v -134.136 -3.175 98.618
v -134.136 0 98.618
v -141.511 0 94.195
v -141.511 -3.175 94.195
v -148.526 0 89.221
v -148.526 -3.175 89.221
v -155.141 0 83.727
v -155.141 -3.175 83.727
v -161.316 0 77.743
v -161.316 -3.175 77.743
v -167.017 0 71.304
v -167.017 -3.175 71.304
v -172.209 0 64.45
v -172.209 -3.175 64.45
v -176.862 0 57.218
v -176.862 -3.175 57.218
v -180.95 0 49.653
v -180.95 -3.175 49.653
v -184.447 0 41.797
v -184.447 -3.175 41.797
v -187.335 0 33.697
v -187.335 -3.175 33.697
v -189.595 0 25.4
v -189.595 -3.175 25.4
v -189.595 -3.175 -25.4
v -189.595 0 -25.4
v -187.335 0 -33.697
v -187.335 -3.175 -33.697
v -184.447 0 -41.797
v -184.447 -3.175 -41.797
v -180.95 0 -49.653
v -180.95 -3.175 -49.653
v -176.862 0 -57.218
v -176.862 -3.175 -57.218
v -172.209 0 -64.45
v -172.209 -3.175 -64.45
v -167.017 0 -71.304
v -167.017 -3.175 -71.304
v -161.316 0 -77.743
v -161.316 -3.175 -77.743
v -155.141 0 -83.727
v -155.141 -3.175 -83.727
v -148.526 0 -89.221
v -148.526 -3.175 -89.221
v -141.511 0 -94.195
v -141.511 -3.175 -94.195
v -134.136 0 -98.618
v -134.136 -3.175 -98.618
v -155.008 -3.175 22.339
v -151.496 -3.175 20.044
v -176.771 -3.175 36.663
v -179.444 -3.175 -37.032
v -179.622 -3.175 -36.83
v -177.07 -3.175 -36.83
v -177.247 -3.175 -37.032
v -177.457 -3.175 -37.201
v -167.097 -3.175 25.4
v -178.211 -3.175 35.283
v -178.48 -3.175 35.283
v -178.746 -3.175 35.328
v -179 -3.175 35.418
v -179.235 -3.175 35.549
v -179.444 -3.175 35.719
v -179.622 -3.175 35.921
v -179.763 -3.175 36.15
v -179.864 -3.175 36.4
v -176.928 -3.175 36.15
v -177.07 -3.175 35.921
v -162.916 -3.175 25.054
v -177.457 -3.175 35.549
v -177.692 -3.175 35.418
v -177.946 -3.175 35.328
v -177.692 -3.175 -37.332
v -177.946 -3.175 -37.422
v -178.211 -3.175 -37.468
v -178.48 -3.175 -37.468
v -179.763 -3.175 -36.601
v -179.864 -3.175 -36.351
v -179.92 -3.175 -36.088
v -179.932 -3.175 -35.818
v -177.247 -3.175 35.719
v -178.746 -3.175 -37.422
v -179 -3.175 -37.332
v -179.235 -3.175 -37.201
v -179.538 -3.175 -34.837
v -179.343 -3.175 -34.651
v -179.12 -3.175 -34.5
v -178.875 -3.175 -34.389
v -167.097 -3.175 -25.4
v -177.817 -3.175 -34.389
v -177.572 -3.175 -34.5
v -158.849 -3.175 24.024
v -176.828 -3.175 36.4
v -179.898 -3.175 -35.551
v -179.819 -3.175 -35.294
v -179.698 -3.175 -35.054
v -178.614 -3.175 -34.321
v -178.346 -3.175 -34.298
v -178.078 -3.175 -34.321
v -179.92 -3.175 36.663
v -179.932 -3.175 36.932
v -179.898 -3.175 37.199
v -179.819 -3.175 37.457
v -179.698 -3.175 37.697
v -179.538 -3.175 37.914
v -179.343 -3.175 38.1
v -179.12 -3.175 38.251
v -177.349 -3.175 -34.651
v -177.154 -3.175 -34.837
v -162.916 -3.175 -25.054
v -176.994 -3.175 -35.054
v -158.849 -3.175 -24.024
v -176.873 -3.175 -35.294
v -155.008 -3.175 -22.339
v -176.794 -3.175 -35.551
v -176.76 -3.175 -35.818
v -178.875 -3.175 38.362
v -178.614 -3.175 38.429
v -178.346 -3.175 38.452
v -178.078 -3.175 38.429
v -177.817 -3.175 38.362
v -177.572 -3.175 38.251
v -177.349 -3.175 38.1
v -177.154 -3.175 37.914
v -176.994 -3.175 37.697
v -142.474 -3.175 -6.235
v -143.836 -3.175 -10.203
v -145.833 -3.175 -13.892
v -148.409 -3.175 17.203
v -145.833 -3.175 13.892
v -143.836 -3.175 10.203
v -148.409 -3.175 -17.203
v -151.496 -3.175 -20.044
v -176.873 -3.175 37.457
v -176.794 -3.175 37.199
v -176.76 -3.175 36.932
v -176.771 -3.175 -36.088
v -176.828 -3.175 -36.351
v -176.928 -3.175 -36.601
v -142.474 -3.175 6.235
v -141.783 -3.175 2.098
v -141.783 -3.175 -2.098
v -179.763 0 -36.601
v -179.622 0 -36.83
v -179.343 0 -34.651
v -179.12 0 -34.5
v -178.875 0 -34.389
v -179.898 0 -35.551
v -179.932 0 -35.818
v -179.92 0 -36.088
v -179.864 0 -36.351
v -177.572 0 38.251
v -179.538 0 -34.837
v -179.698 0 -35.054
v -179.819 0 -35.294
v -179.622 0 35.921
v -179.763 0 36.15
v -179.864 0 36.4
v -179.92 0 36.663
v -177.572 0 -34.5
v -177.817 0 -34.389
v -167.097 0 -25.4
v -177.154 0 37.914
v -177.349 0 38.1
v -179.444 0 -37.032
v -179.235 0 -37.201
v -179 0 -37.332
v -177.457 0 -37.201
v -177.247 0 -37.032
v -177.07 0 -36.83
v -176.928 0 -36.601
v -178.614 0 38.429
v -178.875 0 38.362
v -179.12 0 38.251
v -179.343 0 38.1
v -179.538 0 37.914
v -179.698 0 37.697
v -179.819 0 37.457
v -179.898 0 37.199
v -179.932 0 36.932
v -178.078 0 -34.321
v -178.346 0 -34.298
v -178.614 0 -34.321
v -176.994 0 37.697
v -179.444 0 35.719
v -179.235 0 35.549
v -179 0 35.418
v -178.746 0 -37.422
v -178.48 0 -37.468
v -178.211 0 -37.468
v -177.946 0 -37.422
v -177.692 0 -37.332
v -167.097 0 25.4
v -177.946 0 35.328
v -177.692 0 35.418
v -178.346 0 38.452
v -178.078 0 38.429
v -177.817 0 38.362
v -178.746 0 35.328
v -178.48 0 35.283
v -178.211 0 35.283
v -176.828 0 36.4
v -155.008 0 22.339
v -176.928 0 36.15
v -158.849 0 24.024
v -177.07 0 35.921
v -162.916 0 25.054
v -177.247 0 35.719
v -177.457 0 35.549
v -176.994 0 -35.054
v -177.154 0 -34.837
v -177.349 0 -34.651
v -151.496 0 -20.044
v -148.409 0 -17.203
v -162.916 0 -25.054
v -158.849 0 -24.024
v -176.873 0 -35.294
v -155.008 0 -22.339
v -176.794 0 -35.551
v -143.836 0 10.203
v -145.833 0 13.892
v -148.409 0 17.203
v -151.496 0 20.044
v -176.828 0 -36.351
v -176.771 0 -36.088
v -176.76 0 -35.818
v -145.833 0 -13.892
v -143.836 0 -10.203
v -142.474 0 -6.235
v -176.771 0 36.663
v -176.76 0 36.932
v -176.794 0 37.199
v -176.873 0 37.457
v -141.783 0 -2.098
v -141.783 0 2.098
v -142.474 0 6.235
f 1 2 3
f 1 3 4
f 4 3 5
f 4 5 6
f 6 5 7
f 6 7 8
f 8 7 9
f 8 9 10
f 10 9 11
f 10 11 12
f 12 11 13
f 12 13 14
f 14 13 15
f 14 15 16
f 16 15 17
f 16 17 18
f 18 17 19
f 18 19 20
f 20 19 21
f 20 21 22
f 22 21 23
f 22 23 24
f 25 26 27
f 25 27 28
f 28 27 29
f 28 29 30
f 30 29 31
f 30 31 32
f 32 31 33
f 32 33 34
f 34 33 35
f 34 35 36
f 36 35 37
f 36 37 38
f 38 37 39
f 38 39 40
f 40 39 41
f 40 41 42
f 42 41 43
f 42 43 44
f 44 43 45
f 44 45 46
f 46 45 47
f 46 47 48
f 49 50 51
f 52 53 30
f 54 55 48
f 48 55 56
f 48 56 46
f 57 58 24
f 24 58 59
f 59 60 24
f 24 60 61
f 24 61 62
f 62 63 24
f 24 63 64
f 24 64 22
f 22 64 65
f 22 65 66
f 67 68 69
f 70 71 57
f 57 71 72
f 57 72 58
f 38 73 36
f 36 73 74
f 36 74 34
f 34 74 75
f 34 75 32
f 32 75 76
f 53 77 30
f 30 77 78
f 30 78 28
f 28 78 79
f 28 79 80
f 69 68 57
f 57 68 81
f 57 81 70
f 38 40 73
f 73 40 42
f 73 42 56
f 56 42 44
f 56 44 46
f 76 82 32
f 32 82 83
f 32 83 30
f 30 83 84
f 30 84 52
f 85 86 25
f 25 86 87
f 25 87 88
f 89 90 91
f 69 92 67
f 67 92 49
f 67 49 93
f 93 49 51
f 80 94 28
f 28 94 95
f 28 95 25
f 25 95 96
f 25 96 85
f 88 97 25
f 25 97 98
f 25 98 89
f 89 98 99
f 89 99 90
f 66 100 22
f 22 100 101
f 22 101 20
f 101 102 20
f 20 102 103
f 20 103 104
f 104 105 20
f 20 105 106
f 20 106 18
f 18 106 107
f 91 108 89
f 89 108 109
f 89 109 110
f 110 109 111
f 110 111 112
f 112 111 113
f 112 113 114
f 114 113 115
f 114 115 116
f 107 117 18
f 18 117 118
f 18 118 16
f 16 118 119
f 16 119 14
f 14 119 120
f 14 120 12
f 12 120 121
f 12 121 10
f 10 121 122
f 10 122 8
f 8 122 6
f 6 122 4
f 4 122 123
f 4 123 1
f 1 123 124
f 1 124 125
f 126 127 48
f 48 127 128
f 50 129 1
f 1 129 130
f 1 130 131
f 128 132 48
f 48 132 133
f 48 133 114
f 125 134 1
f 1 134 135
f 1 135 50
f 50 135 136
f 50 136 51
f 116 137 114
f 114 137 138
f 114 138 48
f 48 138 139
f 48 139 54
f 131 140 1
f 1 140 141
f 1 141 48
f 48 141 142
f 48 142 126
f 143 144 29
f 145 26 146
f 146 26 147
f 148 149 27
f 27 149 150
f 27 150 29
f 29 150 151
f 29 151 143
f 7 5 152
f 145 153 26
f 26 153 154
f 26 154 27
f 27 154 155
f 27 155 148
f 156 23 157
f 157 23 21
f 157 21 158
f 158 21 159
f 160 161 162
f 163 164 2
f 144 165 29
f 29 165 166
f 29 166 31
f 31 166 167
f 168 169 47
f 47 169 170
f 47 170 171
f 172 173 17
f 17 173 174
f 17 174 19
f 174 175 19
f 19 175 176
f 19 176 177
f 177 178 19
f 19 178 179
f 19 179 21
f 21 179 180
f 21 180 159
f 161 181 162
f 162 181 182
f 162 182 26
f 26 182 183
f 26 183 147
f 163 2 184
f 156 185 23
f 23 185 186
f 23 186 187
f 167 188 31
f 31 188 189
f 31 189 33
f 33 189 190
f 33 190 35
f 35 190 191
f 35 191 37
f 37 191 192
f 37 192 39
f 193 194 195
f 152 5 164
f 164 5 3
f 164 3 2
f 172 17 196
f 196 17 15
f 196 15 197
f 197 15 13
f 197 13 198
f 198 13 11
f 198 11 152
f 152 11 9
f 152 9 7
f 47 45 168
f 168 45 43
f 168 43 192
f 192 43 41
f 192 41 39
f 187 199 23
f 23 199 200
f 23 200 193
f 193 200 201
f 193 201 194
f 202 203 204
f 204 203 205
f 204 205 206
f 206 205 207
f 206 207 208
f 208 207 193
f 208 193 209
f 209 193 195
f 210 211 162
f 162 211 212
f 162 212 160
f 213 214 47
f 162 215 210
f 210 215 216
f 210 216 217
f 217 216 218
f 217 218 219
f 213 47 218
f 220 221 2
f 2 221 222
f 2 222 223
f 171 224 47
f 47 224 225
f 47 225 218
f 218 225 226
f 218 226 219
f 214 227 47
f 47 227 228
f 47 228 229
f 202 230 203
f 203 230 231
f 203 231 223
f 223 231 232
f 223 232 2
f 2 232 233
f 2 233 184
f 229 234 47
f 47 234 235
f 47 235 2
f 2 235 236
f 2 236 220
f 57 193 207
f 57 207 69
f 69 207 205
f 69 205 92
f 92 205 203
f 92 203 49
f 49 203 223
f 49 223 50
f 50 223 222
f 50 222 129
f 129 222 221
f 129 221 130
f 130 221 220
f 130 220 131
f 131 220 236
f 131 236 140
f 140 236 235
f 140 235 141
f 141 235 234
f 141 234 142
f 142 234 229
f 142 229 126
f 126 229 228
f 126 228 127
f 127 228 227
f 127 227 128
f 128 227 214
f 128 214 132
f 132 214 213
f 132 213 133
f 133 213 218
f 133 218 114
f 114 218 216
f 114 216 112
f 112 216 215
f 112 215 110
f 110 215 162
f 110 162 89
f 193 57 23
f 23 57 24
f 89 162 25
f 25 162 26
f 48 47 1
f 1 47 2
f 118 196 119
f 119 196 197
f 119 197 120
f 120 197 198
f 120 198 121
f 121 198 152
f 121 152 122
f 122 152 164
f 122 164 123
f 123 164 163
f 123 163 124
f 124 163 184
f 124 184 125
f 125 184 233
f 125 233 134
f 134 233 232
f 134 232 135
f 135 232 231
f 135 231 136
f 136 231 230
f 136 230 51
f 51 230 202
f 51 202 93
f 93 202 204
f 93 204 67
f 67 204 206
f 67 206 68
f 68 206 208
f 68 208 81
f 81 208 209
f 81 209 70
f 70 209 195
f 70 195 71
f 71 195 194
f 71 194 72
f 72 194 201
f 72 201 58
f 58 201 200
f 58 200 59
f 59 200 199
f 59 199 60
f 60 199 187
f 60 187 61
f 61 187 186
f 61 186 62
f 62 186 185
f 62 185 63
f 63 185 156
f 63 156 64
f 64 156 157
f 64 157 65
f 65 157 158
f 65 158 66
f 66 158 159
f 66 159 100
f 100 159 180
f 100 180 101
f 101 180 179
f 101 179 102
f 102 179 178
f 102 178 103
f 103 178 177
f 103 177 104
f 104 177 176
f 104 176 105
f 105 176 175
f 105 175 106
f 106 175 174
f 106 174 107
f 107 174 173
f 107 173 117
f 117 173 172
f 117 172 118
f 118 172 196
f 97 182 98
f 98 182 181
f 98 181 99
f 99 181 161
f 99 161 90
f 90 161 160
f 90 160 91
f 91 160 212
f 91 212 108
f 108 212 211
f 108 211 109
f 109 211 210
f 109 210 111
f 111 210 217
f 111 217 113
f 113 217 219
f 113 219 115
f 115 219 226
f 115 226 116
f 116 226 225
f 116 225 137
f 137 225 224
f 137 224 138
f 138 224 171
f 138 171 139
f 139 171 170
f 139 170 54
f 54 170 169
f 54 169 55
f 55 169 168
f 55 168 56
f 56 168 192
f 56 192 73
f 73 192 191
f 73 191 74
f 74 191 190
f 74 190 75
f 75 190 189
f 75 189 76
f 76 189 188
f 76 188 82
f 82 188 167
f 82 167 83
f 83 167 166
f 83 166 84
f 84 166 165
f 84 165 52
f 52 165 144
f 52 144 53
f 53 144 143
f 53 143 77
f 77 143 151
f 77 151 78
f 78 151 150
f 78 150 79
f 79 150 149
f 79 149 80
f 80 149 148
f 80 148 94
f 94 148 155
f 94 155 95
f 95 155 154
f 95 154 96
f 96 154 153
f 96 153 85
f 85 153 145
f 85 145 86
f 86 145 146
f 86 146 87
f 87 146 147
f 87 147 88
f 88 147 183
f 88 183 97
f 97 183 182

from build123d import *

# Parameters (mm, degrees)
BOSS_EXTRUDE1_DEPTH = 3.175
SKETCH2_R           = 1.5875
SKETCH2_W           = 80.264
SKETCH2_H           = 12.954
CUT_EXTRUDE1_DEPTH  = 223.985606318
SKETCH7_R           = 1.5875
SKETCH7_W           = 46.99
SKETCH7_H           = 138.43
CUT_EXTRUDE4_DEPTH  = 223.985606318
CUT_EXTRUDE5_DEPTH  = 223.985606318
SKETCH9_W           = 300.072277348
SKETCH9_H           = 334.026066528
CUT_EXTRUDE6_DEPTH  = 221.482742149
SKETCH10_R          = 1.5875
CUT_EXTRUDE7_DEPTH  = 214.733203623


with BuildPart() as part:
    # Sketch1 → Boss-Extrude1 (new body)
    with BuildSketch(Plane(origin=(0, 0, 0), x_dir=(1, 0, 0), z_dir=(0, 1, 0))):
        with BuildLine():
            Line((-80, 112.5), (100, 112.5))
            Line((100, 112.5), (100, -112.5))
            Line((100, -112.5), (-80, -112.5))
            ThreePointArc((-80, -112.5), (-192.5, 0), (-80, 112.5))
        make_face()
    extrude(amount=-BOSS_EXTRUDE1_DEPTH)

    # Sketch2 → Cut-Extrude1 (cut, through all)
    with BuildSketch(Plane(origin=(0, 0, 0), x_dir=(1, 0, 0), z_dir=(0, 1, 0))):
        with Locations(Location((36.144045702, -74.2188, 0), (0, 0, 270))):
            Circle(SKETCH2_R)
        with Locations(Location((36.144045702, -67.8688, 0), (0, 0, 270))):
            Circle(SKETCH2_R)
        with Locations(Location((36.144045702, -61.5188, 0), (0, 0, 270))):
            Circle(SKETCH2_R)
        with Locations(Location((36.144045702, -55.1688, 0), (0, 0, 270))):
            Circle(SKETCH2_R)
        with Locations(Location((36.144045702, -48.8188, 0), (0, 0, 270))):
            Circle(SKETCH2_R)
        with Locations(Location((36.144045702, -42.4688, 0), (0, 0, 270))):
            Circle(SKETCH2_R)
        with Locations(Location((36.144045702, -36.1188, 0), (0, 0, 270))):
            Circle(SKETCH2_R)
        with Locations(Location((67.894045702, -74.2188, 0), (0, 0, 270))):
            Circle(SKETCH2_R)
        with Locations(Location((67.894045702, -67.8688, 0), (0, 0, 270))):
            Circle(SKETCH2_R)
        with Locations(Location((67.894045702, -61.5188, 0), (0, 0, 270))):
            Circle(SKETCH2_R)
        with Locations(Location((67.894045702, -55.1688, 0), (0, 0, 270))):
            Circle(SKETCH2_R)
        with Locations(Location((67.894045702, -48.8188, 0), (0, 0, 270))):
            Circle(SKETCH2_R)
        with Locations(Location((67.894045702, -42.4688, 0), (0, 0, 270))):
            Circle(SKETCH2_R)
        with Locations(Location((67.894045702, -36.1188, 0), (0, 0, 270))):
            Circle(SKETCH2_R)
        with Locations(Location((36.144045702, 74.2188, 0), (0, 0, 270))):
            Circle(SKETCH2_R)
        with Locations(Location((36.144045702, 67.8688, 0), (0, 0, 270))):
            Circle(SKETCH2_R)
        with Locations(Location((36.144045702, 61.5188, 0), (0, 0, 270))):
            Circle(SKETCH2_R)
        with Locations(Location((36.144045702, 55.1688, 0), (0, 0, 270))):
            Circle(SKETCH2_R)
        with Locations(Location((36.144045702, 48.8188, 0), (0, 0, 270))):
            Circle(SKETCH2_R)
        with Locations(Location((36.144045702, 42.4688, 0), (0, 0, 270))):
            Circle(SKETCH2_R)
        with Locations(Location((36.144045702, 36.1188, 0), (0, 0, 270))):
            Circle(SKETCH2_R)
        with Locations(Location((67.894045702, 74.2188, 0), (0, 0, 270))):
            Circle(SKETCH2_R)
        with Locations(Location((67.894045702, 67.8688, 0), (0, 0, 270))):
            Circle(SKETCH2_R)
        with Locations(Location((67.894045702, 61.5188, 0), (0, 0, 270))):
            Circle(SKETCH2_R)
        with Locations(Location((67.894045702, 55.1688, 0), (0, 0, 270))):
            Circle(SKETCH2_R)
        with Locations(Location((67.894045702, 48.8188, 0), (0, 0, 270))):
            Circle(SKETCH2_R)
        with Locations(Location((67.894045702, 42.4688, 0), (0, 0, 270))):
            Circle(SKETCH2_R)
        with Locations(Location((67.894045702, 36.1188, 0), (0, 0, 270))):
            Circle(SKETCH2_R)
        with Locations((52.019045702, -96.4438)):
            Rectangle(SKETCH2_W, SKETCH2_H)
        with Locations((52.019045702, 96.4438)):
            Rectangle(SKETCH2_W, SKETCH2_H)
    extrude(amount=-CUT_EXTRUDE1_DEPTH, mode=Mode.SUBTRACT)

    # Sketch7 → Cut-Extrude4 (cut, through all)
    with BuildSketch(Plane(origin=(0, 0, 0), x_dir=(1, 0, 0), z_dir=(0, 1, 0))):
        with Locations(Location((-50.166143469, 0, 0), (0, 0, 270))):
            Circle(SKETCH7_R)
        with Locations(Location((25.582761582, 0, 0), (0, 0, 270))):
            Circle(SKETCH7_R)
        with Locations(Location((87.462148806, 0, 0), (0, 0, 270))):
            Circle(SKETCH7_R)
        with Locations((-13.971143469, 0)):
            Rectangle(SKETCH7_W, SKETCH7_H)
    extrude(amount=-CUT_EXTRUDE4_DEPTH, mode=Mode.SUBTRACT)

    # Sketch8 → Cut-Extrude5 (cut, through all)
    with BuildSketch(Plane(origin=(0, 0, 0), x_dir=(1, 0, 0), z_dir=(0, 1, 0))):
        with BuildLine():
            Line((-167.0966, 25.4), (-229.776686608, 25.4))
            Line((-229.776686608, 25.4), (-229.776686608, -25.4))
            Line((-229.776686608, -25.4), (-167.0966, -25.4))
            ThreePointArc((-167.0966, -25.4), (-141.6966, 0), (-167.0966, 25.4))
        make_face()
    extrude(amount=-CUT_EXTRUDE5_DEPTH, mode=Mode.SUBTRACT)

    # Sketch9 → Cut-Extrude6 (cut, through all)
    with BuildSketch(Plane(origin=(0, 0, 0), x_dir=(1, 0, 0), z_dir=(0, 1, 0))):
        with Locations((15.89966987, 0.169857655)):
            Rectangle(SKETCH9_W, SKETCH9_H)
    extrude(amount=-CUT_EXTRUDE6_DEPTH, mode=Mode.SUBTRACT)

    # Sketch10 → Cut-Extrude7 (cut, through all)
    with BuildSketch(Plane(origin=(0, 0, 0), x_dir=(1, 0, 0), z_dir=(0, 1, 0))):
        with Locations(Location((-178.345859252, -36.864745569, 0), (0, 0, 270))):
            Circle(SKETCH10_R)
        with Locations(Location((-178.345859252, 35.885864147, 0), (0, 0, 270))):
            Circle(SKETCH10_R)
    extrude(amount=-CUT_EXTRUDE7_DEPTH, mode=Mode.SUBTRACT)


solid = part.part
